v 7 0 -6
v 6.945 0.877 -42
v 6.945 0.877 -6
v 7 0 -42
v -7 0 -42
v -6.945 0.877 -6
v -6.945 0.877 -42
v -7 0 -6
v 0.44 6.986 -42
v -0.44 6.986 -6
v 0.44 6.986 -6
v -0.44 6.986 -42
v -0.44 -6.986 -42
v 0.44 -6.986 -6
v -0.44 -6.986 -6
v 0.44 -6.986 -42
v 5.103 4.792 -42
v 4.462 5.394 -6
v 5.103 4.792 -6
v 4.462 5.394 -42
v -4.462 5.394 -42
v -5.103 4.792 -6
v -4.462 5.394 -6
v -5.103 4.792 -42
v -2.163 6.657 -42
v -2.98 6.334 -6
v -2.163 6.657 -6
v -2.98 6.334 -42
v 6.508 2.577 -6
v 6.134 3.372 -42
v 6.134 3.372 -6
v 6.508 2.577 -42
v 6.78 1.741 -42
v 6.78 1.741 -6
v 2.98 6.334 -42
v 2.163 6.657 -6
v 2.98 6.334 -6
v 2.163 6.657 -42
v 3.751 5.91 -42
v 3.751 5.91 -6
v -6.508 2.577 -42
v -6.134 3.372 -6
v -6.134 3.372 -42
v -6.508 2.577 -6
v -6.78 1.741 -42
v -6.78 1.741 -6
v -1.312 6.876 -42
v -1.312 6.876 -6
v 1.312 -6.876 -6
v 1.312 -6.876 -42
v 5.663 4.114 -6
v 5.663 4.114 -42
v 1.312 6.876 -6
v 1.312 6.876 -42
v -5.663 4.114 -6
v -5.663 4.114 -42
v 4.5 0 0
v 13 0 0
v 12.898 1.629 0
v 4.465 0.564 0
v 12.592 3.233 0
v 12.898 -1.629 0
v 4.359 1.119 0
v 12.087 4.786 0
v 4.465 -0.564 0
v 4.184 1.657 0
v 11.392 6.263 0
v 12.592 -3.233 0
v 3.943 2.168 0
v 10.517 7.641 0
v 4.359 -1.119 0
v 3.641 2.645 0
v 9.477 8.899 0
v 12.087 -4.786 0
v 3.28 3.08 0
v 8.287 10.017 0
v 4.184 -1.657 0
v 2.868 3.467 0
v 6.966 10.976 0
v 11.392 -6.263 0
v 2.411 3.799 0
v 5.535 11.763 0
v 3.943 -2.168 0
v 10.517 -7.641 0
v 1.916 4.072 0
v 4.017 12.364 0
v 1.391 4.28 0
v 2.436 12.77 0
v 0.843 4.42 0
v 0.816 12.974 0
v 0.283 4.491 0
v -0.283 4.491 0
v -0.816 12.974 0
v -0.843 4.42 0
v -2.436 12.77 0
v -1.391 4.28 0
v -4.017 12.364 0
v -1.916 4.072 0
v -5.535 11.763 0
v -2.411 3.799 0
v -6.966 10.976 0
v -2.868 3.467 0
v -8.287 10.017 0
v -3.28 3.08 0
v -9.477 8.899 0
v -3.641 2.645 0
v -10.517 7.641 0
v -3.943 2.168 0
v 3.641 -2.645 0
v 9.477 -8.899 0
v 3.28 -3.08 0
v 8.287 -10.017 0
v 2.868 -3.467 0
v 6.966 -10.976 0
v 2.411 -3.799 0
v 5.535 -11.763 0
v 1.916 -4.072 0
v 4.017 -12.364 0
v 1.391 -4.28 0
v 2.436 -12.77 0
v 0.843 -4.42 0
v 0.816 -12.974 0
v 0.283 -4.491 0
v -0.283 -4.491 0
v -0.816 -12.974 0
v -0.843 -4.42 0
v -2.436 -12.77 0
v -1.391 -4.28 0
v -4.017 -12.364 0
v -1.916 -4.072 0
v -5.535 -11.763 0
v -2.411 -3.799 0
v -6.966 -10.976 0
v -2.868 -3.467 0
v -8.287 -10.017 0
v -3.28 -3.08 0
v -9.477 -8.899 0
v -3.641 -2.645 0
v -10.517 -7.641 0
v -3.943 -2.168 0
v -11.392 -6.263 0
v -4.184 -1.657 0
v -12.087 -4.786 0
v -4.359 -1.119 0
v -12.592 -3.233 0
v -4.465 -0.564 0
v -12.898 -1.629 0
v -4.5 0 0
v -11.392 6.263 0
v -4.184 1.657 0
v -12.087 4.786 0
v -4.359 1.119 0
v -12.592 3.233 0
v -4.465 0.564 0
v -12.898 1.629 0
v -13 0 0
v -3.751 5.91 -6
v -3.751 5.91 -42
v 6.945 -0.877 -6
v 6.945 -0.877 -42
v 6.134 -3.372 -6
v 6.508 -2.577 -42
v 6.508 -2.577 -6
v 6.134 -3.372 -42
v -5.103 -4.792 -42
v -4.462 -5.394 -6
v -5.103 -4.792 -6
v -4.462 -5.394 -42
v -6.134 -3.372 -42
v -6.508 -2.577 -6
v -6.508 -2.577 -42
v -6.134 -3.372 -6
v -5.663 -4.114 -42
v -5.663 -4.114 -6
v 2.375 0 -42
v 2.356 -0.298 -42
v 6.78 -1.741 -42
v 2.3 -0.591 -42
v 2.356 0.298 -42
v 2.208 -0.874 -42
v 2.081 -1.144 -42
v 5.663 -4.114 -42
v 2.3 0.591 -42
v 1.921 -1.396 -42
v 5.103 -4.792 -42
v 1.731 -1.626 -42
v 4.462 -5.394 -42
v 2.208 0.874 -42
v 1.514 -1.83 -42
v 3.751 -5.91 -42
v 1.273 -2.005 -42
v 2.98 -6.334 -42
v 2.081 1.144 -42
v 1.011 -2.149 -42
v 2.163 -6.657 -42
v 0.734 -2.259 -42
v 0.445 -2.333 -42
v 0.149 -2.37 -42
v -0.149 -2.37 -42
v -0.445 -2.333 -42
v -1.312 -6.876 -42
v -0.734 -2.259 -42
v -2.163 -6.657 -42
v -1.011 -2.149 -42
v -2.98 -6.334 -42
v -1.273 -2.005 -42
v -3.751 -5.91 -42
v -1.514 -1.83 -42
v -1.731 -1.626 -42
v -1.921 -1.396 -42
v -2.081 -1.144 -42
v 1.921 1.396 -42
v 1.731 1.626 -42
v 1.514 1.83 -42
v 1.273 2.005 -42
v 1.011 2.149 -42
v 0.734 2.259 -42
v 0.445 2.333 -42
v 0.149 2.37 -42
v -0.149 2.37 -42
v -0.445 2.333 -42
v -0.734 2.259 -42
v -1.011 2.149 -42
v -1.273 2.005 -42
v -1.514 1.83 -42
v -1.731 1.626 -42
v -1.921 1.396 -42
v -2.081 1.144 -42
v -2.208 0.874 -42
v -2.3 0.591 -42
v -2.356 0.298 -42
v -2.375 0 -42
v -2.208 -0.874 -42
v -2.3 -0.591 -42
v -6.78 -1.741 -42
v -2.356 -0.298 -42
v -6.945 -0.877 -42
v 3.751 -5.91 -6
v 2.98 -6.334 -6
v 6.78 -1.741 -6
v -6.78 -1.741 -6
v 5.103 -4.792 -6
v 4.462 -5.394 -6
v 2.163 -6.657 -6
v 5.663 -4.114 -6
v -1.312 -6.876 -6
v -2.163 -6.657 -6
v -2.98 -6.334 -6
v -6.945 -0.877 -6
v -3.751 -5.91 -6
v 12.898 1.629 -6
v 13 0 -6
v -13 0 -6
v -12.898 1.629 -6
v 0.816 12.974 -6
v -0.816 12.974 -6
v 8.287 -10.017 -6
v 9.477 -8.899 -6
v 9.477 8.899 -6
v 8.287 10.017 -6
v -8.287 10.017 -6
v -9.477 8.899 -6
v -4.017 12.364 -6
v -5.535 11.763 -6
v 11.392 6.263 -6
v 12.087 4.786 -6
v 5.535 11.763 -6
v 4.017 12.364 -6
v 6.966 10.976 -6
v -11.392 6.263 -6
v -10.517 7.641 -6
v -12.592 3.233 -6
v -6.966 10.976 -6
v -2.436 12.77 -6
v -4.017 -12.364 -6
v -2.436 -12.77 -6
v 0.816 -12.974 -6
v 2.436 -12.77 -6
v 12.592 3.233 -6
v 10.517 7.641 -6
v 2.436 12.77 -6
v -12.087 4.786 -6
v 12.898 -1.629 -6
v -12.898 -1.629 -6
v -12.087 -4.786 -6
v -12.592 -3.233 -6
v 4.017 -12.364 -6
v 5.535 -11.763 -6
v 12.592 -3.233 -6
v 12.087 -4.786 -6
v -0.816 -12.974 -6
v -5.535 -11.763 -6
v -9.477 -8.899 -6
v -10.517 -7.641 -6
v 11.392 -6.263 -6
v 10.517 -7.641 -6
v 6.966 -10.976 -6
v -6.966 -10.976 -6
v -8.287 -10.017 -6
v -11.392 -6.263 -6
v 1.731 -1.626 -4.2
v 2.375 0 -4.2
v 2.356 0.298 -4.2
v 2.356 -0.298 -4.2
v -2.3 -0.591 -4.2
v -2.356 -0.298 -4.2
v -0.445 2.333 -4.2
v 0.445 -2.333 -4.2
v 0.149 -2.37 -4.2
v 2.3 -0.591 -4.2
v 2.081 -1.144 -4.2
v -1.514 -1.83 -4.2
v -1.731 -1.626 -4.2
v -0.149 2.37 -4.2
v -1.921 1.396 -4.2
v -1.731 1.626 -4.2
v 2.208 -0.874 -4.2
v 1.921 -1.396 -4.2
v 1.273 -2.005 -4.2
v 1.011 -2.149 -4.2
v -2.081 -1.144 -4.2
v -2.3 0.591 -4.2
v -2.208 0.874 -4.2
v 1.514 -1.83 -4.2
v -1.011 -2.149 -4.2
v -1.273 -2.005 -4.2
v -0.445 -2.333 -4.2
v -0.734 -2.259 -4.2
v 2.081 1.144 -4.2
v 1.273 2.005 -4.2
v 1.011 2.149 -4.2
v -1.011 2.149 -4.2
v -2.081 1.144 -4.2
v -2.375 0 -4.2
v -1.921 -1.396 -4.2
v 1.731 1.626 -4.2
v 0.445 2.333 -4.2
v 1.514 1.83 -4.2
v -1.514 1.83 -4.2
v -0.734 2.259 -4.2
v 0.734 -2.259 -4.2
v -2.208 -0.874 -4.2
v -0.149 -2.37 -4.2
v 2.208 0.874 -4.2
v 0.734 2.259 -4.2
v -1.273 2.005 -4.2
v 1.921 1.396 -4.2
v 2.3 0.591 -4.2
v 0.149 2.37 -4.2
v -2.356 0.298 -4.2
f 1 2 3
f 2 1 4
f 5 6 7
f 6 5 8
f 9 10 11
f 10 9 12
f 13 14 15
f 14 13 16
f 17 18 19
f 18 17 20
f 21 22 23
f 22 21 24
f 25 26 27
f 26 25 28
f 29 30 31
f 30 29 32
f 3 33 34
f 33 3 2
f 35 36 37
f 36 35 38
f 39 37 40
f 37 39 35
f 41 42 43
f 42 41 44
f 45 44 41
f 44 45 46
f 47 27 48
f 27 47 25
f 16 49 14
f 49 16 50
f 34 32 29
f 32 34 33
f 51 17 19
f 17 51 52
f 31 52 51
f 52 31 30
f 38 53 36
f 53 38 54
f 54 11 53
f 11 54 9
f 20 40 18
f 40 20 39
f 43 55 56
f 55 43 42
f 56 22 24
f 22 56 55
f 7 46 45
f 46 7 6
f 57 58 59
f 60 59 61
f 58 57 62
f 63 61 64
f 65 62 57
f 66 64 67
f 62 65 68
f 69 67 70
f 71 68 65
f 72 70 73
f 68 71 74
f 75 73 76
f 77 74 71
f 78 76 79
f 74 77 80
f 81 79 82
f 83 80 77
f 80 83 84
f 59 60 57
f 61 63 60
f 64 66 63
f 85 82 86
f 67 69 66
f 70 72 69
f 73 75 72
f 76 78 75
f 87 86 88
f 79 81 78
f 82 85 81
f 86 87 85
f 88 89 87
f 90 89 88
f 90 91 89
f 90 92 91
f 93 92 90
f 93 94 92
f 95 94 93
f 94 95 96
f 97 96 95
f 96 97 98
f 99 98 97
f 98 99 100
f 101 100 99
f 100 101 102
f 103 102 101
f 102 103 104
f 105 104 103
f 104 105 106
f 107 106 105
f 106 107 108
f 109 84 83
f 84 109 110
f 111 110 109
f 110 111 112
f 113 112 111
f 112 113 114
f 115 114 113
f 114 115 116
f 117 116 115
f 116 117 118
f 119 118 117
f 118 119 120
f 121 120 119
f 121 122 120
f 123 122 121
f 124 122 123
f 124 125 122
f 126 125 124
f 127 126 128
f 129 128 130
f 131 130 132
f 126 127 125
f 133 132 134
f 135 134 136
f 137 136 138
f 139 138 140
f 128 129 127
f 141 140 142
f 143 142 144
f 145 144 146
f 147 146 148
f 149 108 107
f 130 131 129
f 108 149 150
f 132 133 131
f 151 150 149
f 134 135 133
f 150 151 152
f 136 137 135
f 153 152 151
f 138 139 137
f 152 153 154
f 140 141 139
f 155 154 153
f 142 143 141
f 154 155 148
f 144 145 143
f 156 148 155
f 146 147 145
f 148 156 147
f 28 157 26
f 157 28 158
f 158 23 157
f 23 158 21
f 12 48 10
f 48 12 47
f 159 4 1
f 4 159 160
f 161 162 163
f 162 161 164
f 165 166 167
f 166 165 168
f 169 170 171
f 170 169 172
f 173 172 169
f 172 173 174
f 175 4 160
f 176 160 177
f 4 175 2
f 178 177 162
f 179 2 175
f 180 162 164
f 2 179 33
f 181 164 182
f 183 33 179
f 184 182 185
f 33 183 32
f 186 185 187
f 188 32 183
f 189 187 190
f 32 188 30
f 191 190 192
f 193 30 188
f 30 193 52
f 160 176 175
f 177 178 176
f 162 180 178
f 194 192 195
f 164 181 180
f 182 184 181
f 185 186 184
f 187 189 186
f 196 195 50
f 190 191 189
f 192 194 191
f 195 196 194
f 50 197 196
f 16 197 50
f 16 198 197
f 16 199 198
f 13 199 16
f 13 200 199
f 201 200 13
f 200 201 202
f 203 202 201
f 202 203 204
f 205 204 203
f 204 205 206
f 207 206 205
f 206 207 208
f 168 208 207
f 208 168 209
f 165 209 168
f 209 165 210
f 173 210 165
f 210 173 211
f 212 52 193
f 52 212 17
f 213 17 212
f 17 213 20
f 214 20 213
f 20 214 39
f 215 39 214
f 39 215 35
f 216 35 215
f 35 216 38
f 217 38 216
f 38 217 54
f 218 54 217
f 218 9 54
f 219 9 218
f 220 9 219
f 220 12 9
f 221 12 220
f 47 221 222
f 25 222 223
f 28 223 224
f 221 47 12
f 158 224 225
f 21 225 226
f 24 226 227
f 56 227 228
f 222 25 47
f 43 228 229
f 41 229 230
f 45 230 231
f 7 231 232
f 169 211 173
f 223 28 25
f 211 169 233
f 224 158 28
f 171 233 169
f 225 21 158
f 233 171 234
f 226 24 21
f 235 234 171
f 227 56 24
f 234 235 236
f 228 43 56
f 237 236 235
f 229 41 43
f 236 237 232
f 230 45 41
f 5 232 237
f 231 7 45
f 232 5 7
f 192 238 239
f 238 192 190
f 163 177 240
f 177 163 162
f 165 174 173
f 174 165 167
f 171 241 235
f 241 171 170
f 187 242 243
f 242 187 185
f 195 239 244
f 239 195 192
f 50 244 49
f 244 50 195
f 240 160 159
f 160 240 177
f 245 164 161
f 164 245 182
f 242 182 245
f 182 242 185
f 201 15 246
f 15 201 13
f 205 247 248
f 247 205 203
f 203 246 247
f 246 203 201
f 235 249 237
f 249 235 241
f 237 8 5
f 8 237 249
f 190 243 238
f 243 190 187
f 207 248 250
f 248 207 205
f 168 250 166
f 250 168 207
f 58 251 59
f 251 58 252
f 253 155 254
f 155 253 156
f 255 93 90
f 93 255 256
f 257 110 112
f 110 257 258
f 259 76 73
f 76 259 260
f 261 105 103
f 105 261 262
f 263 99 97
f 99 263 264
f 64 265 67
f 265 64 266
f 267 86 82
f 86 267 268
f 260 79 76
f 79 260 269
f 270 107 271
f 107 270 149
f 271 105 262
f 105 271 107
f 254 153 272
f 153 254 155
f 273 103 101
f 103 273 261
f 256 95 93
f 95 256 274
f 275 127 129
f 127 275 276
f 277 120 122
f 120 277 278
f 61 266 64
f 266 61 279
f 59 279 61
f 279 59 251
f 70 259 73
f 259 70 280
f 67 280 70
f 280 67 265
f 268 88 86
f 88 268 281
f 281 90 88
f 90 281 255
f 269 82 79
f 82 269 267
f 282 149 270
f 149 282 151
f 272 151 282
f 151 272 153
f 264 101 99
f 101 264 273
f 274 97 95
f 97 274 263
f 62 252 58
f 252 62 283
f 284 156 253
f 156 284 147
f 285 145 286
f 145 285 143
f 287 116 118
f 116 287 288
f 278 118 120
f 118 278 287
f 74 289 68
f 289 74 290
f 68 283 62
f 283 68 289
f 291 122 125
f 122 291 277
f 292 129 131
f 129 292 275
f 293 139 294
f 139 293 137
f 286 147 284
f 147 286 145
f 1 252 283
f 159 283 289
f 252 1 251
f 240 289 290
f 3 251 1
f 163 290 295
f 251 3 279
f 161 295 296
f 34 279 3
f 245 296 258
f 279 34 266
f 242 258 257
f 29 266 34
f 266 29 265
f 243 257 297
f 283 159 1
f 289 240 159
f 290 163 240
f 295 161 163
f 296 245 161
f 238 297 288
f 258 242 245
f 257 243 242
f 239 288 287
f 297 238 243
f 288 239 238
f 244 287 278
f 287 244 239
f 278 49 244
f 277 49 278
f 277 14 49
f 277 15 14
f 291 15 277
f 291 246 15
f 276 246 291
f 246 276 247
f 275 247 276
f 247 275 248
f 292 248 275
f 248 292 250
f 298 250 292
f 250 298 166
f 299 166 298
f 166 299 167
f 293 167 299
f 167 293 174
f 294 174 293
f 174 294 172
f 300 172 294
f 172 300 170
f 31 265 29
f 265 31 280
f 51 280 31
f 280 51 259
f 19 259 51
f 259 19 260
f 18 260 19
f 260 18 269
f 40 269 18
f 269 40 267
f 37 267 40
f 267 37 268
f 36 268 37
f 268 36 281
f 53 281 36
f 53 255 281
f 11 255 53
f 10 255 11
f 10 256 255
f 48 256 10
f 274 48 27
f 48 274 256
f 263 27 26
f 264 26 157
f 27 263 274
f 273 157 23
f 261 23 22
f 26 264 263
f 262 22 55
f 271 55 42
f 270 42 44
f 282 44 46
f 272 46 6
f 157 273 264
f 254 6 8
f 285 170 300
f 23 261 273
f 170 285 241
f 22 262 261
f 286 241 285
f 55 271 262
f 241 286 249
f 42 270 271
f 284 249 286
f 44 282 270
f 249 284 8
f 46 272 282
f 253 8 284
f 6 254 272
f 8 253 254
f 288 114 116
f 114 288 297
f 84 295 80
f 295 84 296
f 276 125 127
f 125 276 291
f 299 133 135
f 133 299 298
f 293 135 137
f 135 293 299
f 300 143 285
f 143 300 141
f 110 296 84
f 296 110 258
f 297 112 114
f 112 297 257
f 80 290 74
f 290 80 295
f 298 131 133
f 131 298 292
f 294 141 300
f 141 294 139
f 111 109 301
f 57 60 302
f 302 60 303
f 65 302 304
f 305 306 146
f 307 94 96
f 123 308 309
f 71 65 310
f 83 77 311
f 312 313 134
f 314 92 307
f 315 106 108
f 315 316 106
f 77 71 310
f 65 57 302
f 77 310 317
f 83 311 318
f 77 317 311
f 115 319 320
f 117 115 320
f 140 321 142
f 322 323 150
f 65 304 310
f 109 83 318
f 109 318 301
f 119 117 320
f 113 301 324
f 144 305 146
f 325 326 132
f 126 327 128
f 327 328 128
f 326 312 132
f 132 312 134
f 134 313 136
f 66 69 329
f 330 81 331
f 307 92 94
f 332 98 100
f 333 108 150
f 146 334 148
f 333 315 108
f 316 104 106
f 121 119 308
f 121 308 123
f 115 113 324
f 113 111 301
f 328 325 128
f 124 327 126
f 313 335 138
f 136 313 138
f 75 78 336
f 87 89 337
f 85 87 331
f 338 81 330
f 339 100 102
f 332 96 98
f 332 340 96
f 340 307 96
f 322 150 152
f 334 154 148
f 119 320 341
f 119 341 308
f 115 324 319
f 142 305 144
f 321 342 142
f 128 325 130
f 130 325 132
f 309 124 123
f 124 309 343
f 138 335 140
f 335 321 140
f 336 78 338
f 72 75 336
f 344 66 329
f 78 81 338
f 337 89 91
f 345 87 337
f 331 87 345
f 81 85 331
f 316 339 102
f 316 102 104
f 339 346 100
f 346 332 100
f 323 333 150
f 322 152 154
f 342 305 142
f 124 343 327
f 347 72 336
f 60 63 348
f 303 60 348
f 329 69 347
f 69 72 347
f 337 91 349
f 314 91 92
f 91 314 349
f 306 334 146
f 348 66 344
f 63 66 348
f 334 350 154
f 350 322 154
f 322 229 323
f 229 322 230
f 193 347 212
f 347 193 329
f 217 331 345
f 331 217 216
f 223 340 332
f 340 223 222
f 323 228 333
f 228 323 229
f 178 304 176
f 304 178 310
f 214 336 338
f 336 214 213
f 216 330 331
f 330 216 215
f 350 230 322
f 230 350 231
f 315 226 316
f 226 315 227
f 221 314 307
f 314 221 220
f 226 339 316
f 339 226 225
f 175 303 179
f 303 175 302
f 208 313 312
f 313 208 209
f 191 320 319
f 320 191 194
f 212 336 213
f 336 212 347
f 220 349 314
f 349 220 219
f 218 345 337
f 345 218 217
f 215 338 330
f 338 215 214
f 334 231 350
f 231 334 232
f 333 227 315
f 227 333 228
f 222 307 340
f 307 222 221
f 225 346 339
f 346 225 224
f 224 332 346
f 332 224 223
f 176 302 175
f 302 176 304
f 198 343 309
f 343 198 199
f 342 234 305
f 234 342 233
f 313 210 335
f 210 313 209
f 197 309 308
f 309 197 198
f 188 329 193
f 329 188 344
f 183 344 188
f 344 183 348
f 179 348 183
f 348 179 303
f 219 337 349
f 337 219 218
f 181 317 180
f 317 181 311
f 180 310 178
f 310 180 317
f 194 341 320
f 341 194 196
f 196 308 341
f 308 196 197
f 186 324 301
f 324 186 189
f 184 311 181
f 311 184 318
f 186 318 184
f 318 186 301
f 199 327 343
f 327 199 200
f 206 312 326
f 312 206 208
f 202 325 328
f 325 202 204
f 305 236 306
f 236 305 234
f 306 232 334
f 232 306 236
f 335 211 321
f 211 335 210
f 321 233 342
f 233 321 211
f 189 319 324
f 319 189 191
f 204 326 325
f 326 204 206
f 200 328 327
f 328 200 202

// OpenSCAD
$fn = 50;


difference() {
	union() {
		translate(v = [0, 0, -42.0000000000]) {
			cylinder(h = 42, r = 7.0000000000);
		}
		translate(v = [0, 0, -6.0000000000]) {
			cylinder(h = 6, r = 13.0000000000);
		}
	}
	union() {
		translate(v = [0, 0, 0]) {
			rotate(a = [0, 0, 0]) {
				difference() {
					union() {
						#translate(v = [0, 0, -42.0000000000]) {
							cylinder(h = 42, r = 2.2500000000);
						}
						#translate(v = [0, 0, -4.2000000000]) {
							cylinder(h = 4.2000000000, r1 = 2.3750000000, r2 = 4.5000000000);
						}
						#translate(v = [0, 0, -42.0000000000]) {
							cylinder(h = 42, r = 2.3750000000);
						}
						#translate(v = [0, 0, -42.0000000000]) {
							cylinder(h = 42, r = 2.2500000000);
						}
					}
					union();
				}
			}
		}
	}
}
